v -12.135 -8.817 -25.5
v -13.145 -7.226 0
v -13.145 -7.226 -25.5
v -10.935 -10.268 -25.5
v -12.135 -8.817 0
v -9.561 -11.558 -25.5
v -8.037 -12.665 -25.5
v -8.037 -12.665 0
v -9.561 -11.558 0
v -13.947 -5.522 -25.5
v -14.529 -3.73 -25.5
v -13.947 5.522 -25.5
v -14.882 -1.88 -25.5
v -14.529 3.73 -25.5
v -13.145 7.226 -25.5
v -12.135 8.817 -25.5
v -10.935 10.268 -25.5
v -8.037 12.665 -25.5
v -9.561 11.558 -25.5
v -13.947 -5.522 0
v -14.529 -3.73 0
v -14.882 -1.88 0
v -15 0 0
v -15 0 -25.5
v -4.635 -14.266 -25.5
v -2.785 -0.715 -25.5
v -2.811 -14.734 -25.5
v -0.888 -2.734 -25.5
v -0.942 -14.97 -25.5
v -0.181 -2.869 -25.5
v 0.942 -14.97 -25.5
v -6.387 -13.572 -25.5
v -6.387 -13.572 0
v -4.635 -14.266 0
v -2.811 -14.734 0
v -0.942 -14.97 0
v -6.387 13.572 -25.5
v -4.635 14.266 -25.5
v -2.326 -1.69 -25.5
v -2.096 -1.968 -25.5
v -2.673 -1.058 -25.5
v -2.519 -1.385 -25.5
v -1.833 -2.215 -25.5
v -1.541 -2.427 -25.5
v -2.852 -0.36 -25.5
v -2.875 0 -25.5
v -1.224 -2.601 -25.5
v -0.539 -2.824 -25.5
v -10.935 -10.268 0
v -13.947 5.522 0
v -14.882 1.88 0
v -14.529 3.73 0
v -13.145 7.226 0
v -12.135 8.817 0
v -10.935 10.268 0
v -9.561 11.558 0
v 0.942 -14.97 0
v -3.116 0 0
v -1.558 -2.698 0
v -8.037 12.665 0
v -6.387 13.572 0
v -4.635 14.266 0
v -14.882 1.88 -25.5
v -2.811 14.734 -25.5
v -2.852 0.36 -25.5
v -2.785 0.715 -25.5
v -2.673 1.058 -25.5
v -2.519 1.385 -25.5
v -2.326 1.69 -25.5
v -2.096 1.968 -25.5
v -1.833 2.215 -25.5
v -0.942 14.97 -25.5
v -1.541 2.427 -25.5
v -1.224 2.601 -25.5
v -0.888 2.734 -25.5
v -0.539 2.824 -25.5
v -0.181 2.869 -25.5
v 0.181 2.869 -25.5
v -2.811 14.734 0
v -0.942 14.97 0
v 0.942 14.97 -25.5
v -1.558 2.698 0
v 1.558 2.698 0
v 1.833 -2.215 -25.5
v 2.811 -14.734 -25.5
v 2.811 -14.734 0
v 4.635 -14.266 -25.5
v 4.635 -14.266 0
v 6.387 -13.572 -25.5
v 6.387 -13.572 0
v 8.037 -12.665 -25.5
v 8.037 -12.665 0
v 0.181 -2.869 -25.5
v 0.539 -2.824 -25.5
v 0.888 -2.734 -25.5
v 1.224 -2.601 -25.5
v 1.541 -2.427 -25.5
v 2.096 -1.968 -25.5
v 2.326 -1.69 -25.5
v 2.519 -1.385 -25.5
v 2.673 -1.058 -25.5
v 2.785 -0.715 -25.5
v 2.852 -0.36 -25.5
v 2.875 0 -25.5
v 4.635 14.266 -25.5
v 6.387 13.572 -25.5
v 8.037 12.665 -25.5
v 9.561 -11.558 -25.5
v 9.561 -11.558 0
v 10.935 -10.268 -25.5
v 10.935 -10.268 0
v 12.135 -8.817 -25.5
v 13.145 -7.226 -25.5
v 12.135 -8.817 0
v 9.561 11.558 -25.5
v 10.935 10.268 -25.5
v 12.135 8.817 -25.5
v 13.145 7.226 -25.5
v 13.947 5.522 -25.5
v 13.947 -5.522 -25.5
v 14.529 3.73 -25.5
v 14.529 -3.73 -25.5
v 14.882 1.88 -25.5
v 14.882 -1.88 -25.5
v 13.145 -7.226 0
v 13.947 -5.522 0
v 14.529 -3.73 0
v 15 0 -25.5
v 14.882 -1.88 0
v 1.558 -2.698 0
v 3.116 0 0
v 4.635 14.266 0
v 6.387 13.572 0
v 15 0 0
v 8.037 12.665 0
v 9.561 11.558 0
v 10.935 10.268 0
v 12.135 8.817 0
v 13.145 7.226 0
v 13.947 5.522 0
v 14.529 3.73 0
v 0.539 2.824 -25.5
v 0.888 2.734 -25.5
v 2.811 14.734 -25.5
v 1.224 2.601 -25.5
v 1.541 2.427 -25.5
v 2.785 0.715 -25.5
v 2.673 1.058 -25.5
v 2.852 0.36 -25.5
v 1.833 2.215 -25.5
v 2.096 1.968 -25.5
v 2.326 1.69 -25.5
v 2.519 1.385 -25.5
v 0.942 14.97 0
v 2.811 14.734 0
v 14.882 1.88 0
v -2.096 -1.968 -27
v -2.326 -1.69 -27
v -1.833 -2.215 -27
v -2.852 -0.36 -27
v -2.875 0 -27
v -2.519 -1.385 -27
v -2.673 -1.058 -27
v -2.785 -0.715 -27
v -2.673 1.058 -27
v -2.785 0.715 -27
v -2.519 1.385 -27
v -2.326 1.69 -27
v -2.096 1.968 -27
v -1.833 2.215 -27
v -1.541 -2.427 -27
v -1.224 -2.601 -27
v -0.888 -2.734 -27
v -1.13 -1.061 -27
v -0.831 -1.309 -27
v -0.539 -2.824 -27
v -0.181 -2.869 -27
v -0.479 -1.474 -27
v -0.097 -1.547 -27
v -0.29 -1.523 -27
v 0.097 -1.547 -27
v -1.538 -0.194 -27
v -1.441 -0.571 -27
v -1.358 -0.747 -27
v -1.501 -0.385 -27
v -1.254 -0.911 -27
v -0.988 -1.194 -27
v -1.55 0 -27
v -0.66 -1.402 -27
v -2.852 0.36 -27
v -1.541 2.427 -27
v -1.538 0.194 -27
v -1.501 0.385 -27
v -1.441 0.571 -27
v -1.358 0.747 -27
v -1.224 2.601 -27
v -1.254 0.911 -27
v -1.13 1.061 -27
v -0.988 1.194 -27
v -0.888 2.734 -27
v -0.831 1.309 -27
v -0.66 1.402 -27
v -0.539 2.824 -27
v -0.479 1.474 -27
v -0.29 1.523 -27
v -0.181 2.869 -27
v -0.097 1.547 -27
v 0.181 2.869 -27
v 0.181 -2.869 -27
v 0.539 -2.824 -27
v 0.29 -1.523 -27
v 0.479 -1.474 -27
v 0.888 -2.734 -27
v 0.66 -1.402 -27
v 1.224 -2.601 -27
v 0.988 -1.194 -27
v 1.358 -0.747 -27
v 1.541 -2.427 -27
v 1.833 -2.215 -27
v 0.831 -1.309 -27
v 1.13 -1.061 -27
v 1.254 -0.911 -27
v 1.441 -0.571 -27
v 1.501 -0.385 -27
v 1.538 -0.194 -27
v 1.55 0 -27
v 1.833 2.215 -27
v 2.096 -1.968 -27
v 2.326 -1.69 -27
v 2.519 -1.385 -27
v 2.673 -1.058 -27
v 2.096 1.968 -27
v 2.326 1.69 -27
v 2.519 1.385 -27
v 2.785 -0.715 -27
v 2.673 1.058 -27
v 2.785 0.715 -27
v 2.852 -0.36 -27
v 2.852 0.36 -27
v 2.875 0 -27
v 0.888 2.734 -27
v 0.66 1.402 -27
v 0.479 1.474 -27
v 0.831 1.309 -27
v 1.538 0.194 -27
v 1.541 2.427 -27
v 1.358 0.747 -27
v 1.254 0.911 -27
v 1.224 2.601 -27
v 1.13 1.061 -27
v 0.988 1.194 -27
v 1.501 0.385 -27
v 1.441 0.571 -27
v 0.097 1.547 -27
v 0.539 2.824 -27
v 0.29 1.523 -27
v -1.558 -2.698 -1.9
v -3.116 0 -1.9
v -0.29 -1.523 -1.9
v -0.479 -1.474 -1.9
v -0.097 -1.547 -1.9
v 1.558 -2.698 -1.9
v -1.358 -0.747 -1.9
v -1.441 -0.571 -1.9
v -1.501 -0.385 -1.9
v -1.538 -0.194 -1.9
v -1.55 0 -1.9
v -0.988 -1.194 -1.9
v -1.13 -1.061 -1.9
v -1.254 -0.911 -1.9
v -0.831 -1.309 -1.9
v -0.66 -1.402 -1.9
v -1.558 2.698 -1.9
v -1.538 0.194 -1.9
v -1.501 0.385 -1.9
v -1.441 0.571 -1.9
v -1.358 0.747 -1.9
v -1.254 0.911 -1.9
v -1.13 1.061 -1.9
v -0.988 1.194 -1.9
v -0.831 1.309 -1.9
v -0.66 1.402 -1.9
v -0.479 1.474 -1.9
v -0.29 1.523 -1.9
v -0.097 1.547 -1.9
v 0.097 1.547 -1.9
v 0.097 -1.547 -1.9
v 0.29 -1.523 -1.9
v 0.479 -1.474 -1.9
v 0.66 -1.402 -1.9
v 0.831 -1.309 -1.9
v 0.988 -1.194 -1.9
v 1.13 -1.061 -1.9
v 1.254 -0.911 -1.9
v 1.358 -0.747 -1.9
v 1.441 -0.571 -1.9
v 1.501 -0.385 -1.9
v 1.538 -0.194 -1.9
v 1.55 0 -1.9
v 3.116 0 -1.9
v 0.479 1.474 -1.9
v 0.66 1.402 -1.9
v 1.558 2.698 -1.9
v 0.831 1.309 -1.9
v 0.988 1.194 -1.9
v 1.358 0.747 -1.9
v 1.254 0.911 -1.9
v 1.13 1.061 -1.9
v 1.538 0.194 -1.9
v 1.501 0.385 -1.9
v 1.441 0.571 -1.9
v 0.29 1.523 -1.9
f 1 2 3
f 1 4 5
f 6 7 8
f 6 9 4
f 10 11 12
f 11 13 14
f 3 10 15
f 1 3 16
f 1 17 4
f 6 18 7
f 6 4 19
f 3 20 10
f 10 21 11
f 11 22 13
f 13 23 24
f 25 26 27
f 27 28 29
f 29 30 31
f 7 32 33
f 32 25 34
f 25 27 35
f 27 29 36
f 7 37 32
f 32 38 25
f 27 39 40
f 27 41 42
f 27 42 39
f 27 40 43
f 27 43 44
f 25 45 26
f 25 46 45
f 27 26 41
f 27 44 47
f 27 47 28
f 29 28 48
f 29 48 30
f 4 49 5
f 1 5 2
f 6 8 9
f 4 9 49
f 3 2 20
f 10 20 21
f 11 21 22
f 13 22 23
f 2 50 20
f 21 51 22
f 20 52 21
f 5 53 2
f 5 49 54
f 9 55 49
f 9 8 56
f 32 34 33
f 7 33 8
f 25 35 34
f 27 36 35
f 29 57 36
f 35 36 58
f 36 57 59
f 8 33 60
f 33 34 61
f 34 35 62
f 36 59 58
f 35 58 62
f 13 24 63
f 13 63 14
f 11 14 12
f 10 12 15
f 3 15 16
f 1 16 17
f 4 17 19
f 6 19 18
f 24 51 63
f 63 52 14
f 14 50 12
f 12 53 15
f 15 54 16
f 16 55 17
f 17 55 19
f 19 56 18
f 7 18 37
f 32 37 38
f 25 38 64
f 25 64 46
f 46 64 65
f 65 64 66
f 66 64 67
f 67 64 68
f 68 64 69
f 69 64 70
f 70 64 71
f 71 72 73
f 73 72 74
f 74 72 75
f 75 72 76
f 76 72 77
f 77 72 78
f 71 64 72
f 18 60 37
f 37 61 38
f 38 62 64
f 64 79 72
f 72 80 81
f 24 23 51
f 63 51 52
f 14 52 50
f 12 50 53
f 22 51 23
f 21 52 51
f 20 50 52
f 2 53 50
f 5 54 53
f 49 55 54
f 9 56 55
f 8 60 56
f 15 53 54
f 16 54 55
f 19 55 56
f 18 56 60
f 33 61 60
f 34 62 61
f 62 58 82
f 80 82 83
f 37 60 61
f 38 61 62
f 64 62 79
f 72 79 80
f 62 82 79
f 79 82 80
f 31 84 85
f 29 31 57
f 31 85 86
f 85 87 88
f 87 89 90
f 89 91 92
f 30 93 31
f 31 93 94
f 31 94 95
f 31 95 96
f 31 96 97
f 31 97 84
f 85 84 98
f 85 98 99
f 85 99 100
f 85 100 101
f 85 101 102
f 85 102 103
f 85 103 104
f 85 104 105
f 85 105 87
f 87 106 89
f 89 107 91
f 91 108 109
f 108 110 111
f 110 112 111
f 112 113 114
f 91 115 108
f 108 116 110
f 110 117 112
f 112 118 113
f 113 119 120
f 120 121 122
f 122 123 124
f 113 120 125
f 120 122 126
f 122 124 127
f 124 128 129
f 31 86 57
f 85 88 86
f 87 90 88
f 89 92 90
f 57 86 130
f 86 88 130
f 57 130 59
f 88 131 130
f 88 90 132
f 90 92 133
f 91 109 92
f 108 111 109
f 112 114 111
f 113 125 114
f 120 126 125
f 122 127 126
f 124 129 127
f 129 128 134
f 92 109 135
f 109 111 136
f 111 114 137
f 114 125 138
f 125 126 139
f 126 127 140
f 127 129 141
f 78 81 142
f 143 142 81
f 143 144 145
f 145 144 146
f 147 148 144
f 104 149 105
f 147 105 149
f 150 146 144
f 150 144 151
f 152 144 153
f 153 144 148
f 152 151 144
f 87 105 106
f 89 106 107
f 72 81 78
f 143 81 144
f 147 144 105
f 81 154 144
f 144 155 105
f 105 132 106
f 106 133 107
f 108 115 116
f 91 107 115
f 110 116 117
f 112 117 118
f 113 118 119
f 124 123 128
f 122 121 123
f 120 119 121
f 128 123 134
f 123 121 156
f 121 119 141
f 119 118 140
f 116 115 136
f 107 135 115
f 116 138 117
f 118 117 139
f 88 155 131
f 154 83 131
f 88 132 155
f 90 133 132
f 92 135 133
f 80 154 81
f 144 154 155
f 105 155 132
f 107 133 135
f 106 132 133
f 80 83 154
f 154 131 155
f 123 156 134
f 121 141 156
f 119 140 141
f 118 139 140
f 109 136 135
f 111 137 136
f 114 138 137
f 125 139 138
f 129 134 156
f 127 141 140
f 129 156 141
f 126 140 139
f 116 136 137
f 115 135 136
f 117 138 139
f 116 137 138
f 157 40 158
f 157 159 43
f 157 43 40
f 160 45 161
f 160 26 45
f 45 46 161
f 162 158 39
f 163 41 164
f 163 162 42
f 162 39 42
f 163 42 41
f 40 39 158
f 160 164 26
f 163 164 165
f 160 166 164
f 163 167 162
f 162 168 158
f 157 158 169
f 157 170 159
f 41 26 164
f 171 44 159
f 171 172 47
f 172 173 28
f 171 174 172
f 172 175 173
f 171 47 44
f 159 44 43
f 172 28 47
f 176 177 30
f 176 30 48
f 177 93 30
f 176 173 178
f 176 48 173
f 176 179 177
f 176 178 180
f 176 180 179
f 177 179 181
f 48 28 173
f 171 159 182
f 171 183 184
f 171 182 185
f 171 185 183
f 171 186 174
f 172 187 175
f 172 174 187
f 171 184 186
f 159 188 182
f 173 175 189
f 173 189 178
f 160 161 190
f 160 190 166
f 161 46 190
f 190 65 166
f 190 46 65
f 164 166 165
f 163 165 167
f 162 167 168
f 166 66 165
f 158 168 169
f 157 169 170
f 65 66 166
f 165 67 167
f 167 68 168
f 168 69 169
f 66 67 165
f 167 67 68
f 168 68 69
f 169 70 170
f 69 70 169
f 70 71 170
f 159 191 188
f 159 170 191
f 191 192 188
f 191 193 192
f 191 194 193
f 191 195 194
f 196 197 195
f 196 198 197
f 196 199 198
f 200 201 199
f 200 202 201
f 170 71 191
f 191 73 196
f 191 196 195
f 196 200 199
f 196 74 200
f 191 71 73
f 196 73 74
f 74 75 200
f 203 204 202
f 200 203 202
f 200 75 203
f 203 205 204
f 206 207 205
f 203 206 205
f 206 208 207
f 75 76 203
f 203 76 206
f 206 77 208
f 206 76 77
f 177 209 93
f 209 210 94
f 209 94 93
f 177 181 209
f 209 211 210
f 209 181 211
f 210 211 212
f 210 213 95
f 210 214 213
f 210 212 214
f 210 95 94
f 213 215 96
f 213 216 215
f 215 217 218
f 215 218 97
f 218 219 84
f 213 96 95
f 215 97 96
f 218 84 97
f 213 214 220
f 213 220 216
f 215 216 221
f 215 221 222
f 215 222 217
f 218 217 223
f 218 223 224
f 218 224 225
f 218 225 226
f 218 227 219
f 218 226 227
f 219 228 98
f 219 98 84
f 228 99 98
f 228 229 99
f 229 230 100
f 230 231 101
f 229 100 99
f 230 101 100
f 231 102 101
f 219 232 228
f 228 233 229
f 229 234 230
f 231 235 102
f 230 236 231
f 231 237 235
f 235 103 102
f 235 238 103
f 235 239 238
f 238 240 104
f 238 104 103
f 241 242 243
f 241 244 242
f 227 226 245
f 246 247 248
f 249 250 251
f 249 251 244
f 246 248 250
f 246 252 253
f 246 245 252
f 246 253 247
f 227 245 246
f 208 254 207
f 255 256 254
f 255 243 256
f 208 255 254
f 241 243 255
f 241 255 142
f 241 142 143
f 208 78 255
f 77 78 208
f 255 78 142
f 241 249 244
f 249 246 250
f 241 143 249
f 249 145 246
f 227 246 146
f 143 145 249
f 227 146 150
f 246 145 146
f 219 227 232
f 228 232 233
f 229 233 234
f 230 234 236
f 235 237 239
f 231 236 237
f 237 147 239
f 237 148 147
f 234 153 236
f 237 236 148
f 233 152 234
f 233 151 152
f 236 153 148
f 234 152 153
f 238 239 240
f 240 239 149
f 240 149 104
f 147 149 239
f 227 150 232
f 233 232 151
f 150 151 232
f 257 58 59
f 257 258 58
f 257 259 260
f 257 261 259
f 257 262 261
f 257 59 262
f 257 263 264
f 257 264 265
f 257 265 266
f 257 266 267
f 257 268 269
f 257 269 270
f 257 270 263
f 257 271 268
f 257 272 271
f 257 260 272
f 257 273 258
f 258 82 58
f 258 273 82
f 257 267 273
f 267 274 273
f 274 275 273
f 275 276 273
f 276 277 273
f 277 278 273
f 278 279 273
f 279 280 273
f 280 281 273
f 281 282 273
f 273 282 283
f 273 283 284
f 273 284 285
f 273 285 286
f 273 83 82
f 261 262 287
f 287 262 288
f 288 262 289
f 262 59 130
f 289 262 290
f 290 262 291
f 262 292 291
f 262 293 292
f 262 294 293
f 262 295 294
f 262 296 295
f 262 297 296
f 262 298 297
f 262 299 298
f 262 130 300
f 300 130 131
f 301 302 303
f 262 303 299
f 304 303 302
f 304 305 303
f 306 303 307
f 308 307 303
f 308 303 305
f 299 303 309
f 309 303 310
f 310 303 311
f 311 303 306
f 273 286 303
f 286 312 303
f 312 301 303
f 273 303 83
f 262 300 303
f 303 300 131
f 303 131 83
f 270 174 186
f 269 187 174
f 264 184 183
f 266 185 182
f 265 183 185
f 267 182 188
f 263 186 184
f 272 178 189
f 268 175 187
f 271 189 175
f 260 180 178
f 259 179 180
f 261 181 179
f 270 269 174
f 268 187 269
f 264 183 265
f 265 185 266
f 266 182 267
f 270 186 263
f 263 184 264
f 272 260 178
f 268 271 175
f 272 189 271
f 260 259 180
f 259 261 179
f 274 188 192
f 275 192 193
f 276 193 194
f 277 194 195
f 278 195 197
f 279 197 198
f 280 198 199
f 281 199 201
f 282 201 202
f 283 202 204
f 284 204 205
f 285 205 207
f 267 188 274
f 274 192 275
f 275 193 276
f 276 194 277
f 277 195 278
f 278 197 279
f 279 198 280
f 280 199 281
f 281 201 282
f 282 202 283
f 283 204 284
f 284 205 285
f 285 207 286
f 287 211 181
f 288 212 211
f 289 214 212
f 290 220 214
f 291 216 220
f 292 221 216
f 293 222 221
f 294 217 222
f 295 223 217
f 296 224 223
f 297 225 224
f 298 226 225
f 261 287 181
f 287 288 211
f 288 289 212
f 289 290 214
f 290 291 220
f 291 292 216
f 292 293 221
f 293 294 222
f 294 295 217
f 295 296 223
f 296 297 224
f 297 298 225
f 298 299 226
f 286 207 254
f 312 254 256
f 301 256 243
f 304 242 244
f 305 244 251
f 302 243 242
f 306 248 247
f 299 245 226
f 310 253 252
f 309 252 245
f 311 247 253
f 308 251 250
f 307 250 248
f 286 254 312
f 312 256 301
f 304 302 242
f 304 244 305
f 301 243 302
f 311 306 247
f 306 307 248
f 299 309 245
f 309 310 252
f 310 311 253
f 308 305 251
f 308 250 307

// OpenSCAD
$fn = 50;

difference() {
	union() {
		translate(v = [0, 0, -25.5]) {
			cylinder(h = 25.5, r = 15.0);
		}
		#translate(v = [0, 0, -27.0]) {
			cylinder(h = 27, r = 2.875);
		}
	}
	union() {
		translate(v = [0, 0, 0]) {
			rotate(a = [0, 0, 0]) {
				difference() {
					union() {
						translate(v = [0, 0, -1.9]) {
							linear_extrude(height = 1.9) {
								polygon(points = [[3.1158, 0.0], [1.5579000000000005, 2.698361953111554], [-1.5578999999999994, 2.6983619531115544], [-3.1158, 3.815754496783323e-16], [-1.5579000000000014, -2.6983619531115535], [1.557899999999998, -2.6983619531115552]]);
							}
						}
					}
					union();
				}
			}
		}
		#translate(v = [0, 0, -100.0]) {
			cylinder(h = 200, r = 1.55);
		}
	}
}
